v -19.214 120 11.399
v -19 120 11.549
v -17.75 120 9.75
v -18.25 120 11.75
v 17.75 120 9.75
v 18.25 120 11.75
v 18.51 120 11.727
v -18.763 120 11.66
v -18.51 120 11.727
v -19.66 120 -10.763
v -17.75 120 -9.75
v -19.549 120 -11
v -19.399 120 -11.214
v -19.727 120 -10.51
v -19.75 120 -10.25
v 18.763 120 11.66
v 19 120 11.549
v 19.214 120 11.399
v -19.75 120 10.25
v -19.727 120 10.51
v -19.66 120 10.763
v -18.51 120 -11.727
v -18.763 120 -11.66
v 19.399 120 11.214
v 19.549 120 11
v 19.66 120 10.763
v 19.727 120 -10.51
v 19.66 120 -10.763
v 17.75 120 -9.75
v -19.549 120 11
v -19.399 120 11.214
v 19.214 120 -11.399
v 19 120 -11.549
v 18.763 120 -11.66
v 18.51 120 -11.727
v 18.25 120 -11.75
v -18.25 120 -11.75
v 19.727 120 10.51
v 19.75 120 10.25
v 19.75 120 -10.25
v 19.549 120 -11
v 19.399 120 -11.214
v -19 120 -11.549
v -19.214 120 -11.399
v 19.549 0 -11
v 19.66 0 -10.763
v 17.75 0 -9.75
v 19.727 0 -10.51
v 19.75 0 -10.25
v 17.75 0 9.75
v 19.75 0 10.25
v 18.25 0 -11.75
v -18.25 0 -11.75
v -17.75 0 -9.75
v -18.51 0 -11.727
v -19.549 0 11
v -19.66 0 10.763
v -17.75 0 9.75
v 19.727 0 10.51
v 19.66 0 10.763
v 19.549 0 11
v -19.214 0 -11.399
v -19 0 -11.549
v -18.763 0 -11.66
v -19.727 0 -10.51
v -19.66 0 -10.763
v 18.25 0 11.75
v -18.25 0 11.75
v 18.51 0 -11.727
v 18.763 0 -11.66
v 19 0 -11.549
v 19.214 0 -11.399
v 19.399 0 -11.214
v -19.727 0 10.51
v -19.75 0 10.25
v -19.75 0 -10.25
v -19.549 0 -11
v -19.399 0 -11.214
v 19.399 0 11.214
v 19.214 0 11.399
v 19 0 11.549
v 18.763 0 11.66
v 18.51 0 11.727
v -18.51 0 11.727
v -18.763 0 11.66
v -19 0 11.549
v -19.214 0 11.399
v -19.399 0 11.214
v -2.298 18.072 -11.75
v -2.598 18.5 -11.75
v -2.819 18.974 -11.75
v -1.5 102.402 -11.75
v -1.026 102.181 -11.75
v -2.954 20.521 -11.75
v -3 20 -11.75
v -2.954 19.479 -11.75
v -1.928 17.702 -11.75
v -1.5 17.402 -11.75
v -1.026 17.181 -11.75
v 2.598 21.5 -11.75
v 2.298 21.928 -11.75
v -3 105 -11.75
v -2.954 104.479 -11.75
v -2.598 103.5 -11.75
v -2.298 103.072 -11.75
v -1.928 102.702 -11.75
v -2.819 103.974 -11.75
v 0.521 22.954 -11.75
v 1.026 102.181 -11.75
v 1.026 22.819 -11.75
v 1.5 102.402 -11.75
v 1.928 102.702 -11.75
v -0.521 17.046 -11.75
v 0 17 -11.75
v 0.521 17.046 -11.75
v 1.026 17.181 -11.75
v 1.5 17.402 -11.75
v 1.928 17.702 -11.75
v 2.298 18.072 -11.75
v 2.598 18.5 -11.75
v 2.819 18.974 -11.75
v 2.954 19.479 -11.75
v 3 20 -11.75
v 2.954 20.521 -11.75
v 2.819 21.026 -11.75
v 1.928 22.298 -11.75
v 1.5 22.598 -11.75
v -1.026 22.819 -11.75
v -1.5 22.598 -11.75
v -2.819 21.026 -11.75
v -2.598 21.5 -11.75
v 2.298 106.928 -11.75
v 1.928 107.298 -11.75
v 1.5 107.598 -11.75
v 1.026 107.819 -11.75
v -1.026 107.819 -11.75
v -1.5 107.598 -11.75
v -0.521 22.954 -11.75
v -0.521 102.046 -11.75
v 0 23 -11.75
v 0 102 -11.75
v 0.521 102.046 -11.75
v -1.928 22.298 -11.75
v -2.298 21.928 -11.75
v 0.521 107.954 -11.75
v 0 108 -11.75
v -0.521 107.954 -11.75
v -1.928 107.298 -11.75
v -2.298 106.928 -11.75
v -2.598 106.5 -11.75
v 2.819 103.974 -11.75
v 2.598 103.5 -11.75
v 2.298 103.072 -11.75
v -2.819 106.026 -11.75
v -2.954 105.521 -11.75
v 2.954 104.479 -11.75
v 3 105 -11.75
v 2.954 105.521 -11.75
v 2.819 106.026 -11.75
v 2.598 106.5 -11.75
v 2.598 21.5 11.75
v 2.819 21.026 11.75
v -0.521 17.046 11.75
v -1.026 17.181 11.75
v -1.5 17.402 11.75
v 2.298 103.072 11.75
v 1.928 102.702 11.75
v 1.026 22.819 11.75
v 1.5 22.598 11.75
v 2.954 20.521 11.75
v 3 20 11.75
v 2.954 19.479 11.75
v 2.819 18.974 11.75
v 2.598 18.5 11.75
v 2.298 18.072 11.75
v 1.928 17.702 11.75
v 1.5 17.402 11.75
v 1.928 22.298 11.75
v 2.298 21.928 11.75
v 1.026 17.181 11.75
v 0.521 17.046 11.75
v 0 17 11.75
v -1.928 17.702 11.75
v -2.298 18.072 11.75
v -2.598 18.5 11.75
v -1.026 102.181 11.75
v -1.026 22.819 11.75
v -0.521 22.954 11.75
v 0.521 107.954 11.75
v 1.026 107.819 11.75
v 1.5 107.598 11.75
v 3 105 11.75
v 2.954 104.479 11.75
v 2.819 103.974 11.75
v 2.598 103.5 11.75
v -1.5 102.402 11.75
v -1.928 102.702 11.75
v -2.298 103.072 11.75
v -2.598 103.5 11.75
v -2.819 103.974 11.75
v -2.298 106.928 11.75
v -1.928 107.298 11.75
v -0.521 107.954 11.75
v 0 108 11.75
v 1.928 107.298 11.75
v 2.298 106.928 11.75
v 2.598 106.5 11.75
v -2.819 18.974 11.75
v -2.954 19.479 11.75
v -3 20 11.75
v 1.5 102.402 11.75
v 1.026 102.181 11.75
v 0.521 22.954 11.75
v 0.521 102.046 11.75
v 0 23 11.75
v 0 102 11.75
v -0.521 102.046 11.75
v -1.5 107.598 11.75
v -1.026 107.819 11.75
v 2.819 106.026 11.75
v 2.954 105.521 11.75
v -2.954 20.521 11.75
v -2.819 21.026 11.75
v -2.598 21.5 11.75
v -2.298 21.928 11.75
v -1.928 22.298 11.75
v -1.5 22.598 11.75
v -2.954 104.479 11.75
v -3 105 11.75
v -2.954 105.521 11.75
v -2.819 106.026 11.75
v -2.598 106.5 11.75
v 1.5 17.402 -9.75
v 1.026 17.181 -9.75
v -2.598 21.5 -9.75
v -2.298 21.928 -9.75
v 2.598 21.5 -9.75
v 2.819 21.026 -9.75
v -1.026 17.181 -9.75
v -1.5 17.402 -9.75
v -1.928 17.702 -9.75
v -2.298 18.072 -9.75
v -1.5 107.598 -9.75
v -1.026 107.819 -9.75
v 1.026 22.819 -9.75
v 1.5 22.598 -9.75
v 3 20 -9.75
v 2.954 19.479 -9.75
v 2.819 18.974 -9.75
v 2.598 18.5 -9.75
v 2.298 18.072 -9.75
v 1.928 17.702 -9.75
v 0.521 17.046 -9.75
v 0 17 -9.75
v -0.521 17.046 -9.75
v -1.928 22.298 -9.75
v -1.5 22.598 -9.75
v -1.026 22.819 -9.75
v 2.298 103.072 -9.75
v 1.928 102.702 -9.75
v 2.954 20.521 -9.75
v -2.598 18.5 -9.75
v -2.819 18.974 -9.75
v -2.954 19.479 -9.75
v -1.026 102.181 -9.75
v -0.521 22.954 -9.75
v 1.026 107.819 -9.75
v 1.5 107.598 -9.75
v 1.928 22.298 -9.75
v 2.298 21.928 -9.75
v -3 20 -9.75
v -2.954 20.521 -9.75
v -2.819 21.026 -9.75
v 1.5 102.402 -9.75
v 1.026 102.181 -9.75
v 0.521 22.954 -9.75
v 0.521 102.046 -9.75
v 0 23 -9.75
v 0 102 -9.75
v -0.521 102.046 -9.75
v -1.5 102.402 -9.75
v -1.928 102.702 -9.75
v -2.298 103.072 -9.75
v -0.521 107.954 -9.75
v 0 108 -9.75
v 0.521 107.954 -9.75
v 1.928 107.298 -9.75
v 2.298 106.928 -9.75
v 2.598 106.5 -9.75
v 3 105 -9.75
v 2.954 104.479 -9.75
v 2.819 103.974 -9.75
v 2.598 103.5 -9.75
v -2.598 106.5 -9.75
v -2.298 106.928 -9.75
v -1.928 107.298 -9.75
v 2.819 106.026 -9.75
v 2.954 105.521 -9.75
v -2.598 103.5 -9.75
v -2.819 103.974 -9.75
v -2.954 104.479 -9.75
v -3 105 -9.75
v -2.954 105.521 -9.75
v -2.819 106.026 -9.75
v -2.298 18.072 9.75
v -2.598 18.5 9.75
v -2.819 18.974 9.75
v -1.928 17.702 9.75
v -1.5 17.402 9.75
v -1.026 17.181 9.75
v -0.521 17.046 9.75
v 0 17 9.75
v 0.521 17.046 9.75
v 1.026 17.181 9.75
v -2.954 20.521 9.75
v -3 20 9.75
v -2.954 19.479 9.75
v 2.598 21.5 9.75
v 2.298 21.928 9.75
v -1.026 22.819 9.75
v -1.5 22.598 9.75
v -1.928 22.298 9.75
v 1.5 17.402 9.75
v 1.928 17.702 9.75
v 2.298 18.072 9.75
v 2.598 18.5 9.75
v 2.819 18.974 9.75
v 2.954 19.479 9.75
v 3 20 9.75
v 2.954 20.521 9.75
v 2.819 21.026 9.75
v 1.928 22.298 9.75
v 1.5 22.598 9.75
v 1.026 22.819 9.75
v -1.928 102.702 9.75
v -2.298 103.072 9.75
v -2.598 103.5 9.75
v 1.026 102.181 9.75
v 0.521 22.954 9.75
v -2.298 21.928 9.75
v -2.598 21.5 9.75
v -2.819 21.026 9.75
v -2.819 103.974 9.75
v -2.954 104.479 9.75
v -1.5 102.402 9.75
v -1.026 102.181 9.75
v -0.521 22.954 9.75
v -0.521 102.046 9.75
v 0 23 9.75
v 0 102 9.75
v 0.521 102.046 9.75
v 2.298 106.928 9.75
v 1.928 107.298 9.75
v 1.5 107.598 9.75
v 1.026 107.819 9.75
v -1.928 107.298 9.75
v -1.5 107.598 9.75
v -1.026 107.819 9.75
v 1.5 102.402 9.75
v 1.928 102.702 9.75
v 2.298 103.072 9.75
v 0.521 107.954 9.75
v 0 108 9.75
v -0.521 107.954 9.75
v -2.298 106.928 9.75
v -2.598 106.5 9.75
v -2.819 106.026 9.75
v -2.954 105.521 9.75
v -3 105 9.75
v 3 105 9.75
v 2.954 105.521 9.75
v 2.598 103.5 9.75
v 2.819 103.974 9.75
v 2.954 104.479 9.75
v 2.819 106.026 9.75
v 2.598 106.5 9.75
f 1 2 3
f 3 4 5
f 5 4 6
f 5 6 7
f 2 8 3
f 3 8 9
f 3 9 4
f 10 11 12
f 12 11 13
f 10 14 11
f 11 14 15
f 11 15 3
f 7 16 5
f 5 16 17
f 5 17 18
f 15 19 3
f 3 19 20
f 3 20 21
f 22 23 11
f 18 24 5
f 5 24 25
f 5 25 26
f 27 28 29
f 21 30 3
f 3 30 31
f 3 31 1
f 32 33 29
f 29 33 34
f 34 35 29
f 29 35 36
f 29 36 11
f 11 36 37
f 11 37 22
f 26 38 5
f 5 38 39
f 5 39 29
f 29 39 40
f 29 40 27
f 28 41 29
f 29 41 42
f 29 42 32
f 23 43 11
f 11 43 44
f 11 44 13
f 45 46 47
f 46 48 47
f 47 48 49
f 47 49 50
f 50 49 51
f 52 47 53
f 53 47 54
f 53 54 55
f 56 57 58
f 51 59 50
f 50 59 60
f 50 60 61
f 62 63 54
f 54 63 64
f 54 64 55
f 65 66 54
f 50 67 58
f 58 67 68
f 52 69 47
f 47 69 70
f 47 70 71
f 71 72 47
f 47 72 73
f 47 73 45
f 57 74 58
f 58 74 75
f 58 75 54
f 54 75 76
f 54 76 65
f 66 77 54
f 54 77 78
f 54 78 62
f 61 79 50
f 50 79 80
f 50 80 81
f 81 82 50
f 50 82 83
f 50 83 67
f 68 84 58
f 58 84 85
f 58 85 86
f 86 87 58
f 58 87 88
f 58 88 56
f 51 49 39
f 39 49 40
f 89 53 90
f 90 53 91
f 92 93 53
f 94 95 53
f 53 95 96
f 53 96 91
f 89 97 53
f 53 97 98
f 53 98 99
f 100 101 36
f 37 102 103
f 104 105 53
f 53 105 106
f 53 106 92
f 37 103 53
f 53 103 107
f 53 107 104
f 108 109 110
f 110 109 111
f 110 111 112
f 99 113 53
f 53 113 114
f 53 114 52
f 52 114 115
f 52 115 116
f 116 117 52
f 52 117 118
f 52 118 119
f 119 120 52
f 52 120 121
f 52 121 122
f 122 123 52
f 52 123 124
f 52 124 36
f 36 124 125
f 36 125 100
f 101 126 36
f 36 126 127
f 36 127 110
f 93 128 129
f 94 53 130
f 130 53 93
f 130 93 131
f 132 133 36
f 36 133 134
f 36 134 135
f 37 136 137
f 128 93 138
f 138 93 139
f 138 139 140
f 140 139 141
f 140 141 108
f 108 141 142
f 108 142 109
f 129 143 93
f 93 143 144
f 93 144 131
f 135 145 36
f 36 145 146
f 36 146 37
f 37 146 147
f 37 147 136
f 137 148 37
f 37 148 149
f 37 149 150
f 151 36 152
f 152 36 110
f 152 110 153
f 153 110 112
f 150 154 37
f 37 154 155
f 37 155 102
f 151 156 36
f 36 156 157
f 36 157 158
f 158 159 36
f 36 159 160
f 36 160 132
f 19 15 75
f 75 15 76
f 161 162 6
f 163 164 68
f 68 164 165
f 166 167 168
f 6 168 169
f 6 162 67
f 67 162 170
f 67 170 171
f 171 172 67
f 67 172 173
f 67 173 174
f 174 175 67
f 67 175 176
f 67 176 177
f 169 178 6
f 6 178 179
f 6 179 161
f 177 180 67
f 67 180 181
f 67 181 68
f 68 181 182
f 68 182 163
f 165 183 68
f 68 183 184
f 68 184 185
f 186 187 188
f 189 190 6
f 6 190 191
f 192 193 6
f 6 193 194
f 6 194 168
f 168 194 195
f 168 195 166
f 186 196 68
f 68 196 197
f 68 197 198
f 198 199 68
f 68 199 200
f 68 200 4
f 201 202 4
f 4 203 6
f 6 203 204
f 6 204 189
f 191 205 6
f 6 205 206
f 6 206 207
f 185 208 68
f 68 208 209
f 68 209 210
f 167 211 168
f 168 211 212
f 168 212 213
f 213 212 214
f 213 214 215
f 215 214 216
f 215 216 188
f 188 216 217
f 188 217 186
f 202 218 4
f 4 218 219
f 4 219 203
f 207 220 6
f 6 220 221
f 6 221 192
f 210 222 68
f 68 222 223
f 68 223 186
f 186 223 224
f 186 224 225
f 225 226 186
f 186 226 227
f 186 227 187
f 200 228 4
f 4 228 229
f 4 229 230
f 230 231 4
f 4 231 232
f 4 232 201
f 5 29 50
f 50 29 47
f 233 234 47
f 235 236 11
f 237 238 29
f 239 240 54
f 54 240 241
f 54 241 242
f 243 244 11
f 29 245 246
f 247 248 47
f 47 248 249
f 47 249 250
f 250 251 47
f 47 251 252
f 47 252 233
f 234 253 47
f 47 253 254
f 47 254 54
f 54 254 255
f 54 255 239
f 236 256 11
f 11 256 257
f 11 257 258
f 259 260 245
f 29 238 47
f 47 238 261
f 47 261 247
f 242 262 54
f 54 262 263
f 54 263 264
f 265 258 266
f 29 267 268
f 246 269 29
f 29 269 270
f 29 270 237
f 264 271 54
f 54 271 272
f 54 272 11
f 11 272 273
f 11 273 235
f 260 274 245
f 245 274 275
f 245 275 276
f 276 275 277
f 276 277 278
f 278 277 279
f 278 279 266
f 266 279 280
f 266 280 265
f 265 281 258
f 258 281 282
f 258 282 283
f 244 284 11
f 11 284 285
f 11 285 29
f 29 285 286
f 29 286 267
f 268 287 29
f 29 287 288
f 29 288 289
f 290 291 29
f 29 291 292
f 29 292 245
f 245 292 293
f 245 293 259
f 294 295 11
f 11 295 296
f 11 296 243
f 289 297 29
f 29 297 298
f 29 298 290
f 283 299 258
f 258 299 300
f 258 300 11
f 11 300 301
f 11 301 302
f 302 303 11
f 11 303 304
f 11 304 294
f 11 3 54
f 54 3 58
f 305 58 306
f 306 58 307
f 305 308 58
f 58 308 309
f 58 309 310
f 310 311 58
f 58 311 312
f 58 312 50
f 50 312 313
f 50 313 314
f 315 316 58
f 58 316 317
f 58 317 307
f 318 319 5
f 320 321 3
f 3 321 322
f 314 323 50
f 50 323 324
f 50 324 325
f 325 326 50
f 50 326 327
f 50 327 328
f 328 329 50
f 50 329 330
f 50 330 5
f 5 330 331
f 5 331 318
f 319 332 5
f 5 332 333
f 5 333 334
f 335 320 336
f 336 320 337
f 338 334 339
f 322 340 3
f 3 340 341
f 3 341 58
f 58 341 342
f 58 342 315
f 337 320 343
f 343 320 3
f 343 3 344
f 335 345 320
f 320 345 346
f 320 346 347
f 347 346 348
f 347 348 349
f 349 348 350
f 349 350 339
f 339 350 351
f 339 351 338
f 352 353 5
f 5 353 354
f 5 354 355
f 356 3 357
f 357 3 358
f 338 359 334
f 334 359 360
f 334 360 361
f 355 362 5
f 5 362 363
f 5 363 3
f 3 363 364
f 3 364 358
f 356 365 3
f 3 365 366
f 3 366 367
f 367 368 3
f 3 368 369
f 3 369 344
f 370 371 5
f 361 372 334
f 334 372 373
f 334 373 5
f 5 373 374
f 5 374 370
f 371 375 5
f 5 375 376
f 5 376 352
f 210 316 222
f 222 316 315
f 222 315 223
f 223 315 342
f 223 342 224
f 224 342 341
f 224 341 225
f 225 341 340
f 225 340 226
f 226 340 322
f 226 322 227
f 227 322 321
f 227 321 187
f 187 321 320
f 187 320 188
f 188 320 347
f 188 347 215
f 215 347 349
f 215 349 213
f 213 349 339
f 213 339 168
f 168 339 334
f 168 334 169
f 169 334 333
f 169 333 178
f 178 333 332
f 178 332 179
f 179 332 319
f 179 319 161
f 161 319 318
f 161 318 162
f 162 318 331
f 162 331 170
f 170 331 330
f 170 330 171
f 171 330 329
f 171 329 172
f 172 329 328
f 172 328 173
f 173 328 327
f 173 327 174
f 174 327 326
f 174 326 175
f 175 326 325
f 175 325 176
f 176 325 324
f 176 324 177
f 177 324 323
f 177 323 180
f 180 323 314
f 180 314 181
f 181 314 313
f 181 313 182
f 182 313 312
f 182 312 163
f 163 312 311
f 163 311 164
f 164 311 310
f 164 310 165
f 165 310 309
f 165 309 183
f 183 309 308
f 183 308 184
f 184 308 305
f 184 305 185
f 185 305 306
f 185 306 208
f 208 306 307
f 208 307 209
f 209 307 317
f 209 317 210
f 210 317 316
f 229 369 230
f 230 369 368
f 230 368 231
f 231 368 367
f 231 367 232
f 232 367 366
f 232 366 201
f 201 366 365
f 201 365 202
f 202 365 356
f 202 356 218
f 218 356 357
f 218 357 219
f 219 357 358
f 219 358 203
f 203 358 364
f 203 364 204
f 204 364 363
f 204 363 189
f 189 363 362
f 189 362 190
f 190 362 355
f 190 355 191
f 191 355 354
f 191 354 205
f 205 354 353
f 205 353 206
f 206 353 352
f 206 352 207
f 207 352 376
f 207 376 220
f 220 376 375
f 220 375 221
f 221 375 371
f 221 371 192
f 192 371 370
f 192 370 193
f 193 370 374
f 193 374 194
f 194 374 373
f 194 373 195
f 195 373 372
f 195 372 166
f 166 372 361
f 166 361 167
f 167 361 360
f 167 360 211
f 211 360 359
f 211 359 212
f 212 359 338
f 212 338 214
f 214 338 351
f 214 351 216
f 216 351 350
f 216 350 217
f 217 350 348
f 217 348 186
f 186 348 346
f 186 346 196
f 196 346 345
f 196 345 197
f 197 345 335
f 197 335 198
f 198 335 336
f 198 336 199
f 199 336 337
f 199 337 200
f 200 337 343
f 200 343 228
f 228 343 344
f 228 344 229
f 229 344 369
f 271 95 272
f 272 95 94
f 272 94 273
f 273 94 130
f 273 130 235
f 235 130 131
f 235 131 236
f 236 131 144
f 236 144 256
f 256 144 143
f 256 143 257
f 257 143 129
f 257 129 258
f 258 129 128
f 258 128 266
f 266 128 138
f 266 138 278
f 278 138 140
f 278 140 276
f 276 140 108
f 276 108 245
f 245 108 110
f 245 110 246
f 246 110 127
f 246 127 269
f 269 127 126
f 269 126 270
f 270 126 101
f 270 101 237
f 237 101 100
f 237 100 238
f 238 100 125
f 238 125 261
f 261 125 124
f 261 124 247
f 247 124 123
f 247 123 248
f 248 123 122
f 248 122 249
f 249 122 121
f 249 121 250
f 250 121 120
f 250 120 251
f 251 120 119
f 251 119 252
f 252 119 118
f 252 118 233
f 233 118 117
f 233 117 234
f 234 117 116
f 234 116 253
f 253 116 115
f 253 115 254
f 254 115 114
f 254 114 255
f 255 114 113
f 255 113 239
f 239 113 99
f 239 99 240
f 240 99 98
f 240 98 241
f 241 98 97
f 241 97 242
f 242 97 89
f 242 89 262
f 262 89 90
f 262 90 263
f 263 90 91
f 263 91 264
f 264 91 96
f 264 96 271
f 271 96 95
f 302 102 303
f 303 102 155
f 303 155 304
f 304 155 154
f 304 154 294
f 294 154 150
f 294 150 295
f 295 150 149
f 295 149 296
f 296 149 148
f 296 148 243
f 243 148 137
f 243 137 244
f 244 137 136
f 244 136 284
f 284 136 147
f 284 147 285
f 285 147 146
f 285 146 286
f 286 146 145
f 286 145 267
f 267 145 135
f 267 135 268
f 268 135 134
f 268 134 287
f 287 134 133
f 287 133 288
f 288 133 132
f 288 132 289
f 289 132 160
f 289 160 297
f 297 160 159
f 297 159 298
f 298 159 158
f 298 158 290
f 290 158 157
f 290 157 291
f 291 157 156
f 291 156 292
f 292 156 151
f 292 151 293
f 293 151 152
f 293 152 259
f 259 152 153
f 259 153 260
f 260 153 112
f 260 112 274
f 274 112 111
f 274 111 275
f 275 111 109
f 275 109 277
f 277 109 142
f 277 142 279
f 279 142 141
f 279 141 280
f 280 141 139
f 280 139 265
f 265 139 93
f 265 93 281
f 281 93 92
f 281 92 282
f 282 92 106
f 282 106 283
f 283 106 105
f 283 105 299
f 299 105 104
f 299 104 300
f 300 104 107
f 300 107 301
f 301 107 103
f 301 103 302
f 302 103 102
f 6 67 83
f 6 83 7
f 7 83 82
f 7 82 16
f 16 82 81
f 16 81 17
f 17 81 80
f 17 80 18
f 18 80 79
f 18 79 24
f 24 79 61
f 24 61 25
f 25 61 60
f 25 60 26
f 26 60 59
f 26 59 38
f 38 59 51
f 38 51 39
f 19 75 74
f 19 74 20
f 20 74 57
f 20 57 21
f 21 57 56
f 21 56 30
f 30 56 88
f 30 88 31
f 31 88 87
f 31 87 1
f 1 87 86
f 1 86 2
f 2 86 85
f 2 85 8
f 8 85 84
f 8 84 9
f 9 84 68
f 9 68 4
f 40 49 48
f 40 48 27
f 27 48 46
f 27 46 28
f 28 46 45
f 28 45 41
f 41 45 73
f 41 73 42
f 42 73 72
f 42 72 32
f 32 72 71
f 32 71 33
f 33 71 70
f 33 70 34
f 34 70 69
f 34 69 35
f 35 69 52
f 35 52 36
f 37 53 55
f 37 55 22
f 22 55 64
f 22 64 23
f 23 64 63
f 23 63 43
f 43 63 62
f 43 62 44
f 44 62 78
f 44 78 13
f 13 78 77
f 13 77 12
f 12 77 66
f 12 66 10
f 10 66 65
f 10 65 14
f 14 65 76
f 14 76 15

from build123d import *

# Parameters (mm, degrees)
SKETCH1_W               = 39.5
SKETCH1_H               = 23.5
SKETCH1_W_2             = 35.5
SKETCH1_H_2             = 19.5
BOSS_EXTRUDE1_DEPTH     = 120
CUT_EXTRUDE1_DEPTH      = 124.500253036
CUT_EXTRUDE1_DEPTH_BACK = 124.500253036
SKETCH2_R               = 3
FILLET1_R               = 1.5


with BuildPart() as part:
    # Sketch1 → Boss-Extrude1 (new body)
    with BuildSketch(Plane(origin=(0, 0, 0), x_dir=(1, 0, 0), z_dir=(0, 1, 0))):
        Rectangle(SKETCH1_W, SKETCH1_H)
        Rectangle(SKETCH1_W_2, SKETCH1_H_2, mode=Mode.SUBTRACT)
    extrude(amount=BOSS_EXTRUDE1_DEPTH)

    # Sketch2 → Cut-Extrude1 (cut, two sides: drawn at the far end of the back side and taken through both)
    with BuildSketch(Plane(origin=(0, 0, 9.75), x_dir=(-1, 0, 0), z_dir=(0, 0, -1)).offset(-CUT_EXTRUDE1_DEPTH_BACK)):
        with Locations((0, 105)):
            Circle(SKETCH2_R)
        with Locations((0, 20)):
            Circle(SKETCH2_R)
    extrude(amount=CUT_EXTRUDE1_DEPTH + CUT_EXTRUDE1_DEPTH_BACK, mode=Mode.SUBTRACT)

    # Fillet1
    fillet1_edges = [part.edges().sort_by_distance(p)[0] for p in [
        (19.75, 60, 11.75),
        (-19.75, 60, 11.75),
        (-19.75, 60, -11.75),
        (19.75, 60, -11.75),
    ]]
    fillet(fillet1_edges, radius=FILLET1_R)


solid = part.part
